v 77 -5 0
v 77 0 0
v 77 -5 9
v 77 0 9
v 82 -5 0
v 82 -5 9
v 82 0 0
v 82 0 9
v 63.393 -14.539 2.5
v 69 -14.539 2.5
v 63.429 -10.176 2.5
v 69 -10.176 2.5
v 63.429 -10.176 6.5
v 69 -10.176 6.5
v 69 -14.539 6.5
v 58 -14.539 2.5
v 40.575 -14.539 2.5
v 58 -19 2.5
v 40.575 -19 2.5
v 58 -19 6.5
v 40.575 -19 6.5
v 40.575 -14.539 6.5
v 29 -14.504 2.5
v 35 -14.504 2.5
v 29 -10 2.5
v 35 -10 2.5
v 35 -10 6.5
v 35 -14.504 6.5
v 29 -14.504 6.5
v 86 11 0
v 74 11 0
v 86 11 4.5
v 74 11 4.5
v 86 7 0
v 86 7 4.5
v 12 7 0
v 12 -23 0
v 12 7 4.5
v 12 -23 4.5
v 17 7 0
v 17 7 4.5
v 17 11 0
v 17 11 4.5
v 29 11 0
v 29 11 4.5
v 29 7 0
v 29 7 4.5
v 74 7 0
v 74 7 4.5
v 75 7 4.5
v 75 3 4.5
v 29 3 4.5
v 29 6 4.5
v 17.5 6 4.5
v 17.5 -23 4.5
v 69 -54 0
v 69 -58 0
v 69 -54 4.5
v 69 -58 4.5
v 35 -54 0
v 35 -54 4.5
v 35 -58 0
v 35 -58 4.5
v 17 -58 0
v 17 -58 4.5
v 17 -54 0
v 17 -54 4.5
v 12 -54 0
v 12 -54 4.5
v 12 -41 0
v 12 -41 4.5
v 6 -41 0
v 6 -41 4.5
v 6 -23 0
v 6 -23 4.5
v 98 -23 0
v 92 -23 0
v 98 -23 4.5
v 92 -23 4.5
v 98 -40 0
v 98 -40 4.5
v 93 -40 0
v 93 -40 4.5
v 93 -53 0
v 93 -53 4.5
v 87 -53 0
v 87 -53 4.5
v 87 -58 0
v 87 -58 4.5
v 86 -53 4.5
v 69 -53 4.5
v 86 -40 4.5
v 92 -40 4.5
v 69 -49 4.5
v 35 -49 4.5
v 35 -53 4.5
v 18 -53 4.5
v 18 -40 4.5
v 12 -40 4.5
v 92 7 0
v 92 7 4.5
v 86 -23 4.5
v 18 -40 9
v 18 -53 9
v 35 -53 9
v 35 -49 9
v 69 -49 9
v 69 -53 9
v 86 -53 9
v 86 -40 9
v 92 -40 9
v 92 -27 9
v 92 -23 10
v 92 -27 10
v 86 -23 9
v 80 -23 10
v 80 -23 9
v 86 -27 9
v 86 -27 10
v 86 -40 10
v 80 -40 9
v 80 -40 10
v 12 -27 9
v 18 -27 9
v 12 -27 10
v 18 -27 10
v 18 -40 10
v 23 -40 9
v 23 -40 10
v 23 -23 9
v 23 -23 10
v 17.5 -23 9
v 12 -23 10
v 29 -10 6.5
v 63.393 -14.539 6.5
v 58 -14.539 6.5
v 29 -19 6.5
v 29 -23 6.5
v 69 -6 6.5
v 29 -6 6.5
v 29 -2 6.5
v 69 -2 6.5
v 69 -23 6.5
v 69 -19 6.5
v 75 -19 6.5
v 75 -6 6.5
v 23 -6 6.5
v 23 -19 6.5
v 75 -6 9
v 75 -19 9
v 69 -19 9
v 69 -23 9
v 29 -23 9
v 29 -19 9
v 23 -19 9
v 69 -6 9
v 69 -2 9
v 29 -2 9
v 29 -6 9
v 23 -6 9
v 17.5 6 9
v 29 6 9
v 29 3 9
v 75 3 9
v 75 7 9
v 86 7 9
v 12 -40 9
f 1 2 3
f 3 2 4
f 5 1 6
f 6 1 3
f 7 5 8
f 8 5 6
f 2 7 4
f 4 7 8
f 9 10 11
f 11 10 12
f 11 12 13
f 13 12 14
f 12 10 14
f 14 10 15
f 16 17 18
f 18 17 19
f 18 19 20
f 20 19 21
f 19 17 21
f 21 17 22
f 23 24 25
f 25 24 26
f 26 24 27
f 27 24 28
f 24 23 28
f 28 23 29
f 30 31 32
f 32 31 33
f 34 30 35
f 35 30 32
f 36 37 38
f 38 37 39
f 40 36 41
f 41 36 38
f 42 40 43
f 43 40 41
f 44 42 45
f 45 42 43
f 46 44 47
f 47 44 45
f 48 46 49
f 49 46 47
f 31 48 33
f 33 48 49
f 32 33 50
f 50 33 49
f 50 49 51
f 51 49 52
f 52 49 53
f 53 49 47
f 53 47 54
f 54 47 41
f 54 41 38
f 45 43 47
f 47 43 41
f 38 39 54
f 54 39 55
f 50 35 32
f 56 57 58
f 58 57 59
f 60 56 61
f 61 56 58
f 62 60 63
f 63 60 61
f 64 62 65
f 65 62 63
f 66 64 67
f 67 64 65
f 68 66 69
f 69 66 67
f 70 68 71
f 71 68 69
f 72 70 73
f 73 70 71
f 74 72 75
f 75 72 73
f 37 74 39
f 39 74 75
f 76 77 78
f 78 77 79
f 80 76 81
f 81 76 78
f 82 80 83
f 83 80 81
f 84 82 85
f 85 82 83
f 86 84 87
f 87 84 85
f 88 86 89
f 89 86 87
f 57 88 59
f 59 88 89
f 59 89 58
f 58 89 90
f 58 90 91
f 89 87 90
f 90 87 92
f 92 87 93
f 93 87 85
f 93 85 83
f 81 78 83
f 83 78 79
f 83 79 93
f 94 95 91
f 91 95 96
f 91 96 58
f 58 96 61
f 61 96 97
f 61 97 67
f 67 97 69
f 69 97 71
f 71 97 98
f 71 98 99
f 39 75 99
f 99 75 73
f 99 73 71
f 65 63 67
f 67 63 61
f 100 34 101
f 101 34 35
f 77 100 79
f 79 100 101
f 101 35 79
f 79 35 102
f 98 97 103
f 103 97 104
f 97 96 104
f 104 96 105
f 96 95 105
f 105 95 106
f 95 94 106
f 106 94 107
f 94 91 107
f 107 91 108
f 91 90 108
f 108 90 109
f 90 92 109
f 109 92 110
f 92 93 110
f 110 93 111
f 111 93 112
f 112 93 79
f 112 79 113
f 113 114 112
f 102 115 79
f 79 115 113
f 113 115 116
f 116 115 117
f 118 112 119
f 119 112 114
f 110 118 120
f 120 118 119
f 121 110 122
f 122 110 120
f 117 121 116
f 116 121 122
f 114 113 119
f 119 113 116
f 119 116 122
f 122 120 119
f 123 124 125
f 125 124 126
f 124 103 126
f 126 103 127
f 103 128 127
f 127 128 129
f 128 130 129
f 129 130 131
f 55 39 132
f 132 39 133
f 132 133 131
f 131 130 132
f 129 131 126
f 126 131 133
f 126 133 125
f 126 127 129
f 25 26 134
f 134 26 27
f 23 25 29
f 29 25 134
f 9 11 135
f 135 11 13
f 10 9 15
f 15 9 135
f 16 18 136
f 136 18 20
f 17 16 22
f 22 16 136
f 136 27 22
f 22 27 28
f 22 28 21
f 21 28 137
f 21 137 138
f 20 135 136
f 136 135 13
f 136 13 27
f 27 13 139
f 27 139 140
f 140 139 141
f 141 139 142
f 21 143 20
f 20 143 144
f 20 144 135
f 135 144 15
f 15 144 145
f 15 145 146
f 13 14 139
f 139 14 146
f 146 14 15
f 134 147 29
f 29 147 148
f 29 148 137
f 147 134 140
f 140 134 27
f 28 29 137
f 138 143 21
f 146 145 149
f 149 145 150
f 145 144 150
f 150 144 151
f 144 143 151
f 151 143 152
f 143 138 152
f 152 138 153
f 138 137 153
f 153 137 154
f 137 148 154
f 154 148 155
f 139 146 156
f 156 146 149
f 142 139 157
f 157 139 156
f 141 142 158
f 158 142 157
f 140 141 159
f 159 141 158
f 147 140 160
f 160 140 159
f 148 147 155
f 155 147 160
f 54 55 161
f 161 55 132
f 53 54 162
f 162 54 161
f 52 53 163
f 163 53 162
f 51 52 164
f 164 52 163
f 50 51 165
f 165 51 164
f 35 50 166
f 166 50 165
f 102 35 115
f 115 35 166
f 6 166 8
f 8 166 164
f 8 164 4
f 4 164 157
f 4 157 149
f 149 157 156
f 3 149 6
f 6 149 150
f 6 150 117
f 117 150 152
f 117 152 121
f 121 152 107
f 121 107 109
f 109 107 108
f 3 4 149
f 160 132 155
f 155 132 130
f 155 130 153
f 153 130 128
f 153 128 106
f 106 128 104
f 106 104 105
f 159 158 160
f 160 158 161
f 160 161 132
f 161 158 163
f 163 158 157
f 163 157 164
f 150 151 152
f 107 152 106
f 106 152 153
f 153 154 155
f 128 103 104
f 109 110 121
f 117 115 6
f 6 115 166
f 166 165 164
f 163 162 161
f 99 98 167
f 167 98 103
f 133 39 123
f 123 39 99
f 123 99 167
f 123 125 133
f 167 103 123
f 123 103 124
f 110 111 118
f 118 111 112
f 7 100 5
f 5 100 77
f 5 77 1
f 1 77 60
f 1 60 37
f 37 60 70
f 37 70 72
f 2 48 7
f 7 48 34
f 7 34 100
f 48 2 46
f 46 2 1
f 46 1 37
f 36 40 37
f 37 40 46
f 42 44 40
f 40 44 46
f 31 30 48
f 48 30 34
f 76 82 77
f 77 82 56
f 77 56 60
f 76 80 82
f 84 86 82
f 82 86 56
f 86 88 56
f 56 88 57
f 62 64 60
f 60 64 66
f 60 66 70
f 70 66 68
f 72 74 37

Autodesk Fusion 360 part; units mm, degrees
sketch "finn" plane through (0, 0, 0) normal (0, 0, 1) x (1, 0, 0)
  line L0 (12, 6) -> (12, -23)
  line L1 (12, -23) -> (6, -23)
  line L2 (6, -23) -> (6, -41)
  line L3 (6, -41) -> (12, -41)
  line L4 (12, -41) -> (12, -54)
  line L5 (12, -54) -> (17, -54)
  line L6 (17, -58) -> (35, -58)
  line L7 (35, -58) -> (35, -54)
  line L8 (35, -54) -> (69, -54)
  line L9 (69, -58) -> (87, -58)
  line L10 (87, -58) -> (87, -53)
  line L11 (87, -53) -> (93, -53)
  line L12 (93, -53) -> (93, -40)
  line L13 (98, -40) -> (98, -23)
  line L14 (98, -23) -> (92, -23)
  line L15 (92, -23) -> (92, 7)
  line L16 (92, 7) -> (86, 7)
  line L17 (86, 11) -> (74, 11)
  line L18 (74, 11) -> (74, 7)
  line L19 (74, 7) -> (29, 7)
  line L20 (29, 11) -> (17, 11)
  line L21 (17, 11) -> (17, 7)
  line L22 (12, 6) -> (12, 7)
  line L23 (23, -6) -> (23, -19)
  line L24 (23, -19) -> (29, -19)
  line L25 (29, -23) -> (69, -23)
  line L26 (69, -23) -> (69, -19)
  line L27 (75, -19) -> (75, -6)
  line L28 (75, -6) -> (69, -6)
  line L29 (69, -2) -> (69, -6)
  line L30 (69, -2) -> (29, -2)
  line L31 (29, -2) -> (29, -6)
  line L32 (23, -6) -> (29, -6)
  line L33 (29, -10.3517) -> (29, -14.5037)
  line L34 (29, -14.5037) -> (35, -14.5037)
  line L35 (35, -14.5037) -> (35, -10)
  line L36 (35, -10) -> (29, -10)
  line L37 (29, -10) -> (29, -10.3517)
  line L38 (63.4285, -10.1759) -> (69, -10.1759)
  line L39 (69, -10.1759) -> (69, -14.5392)
  line L40 (69, -14.5392) -> (63.393, -14.5392)
  line L41 (63.393, -14.5392) -> (63.4285, -10.1759)
  line L42 (40.5749, -14.5392) -> (40.5749, -19)
  line L43 (40.5749, -19) -> (58, -19)
  line L44 (58, -19) -> (58, -14.5392)
  line L45 (58, -14.5392) -> (40.5749, -14.5392)
  line L46 (17, -58) -> (17, -54)
  line L47 (29, 7) -> (29, 11)
  line L48 (12, 7) -> (17, 7)
  line L49 (12, -23) -> (12, -27)
  line L50 (12, -27) -> (18, -27)
  line L51 (18, -27) -> (18, -40)
  line L52 (18, -40) -> (23, -40)
  line L53 (23, -40) -> (23, -23)
  line L54 (23, -23) -> (12, -23)
  line L55 (92, -23) -> (80, -23)
  line L56 (80, -23) -> (80, -40)
  line L57 (80, -40) -> (86, -40)
  line L58 (86, -40) -> (86, -27)
  line L59 (86, -27) -> (92, -27)
  line L60 (92, -27) -> (92, -23)
  line L61 (69, -58) -> (69, -54)
  line L62 (12, -23) -> (12, -40)
  line L63 (12, -40) -> (18, -40)
  line L64 (18, -53) -> (35, -53)
  line L65 (35, -53) -> (35, -49)
  line L66 (35, -49) -> (69, -49)
  line L67 (69, -53) -> (69, -49)
  line L68 (69, -53) -> (86, -53)
  line L69 (86, -53) -> (86, -40)
  line L70 (86, -40) -> (92, -40)
  line L71 (92, -40) -> (92, -23)
  line L72 (92, -23) -> (86, -23)
  line L73 (92, -23) -> (86, -23)
  line L74 (86, -23) -> (86, 7)
  line L75 (86, 7) -> (75, 7)
  line L76 (75, 7) -> (75, 3)
  line L77 (75, 3) -> (29, 3)
  line L78 (29, 3) -> (29, 6)
  line L79 (29, 6) -> (17.5, 6)
  line L80 (17.5, 6) -> (17.5, -23)
  line L81 (18, -53) -> (18, -40)
  line L82 (93, -40) -> (98, -40)
  line L83 (86, 11) -> (86, 7)
  line L84 (29, -19) -> (29, -23)
  line L85 (69, -19) -> (75, -19)
  line L86 (23, -27) -> (80, -27)
  line L87 (23, -27) -> (23, -40)
extrude "Extrude7" add sketch "finn" along normal blind 10 contours L49 L50 L51 L52 L53 L54 L62 L87 | L55 L56 L57 L58 L59 L60 L71 L72 L73 makes body 1 at (23, -34.3333, 3.3333) makes body 2 at (80, -28.6667, 3.3333)
extrude "Extrude8" add sketch "finn" along normal blind 9 separate body contours L50 L51 L62 L63 | L53 L54 L55 L56 L74 L75 L76 L77 L78 L79 L80 L86 | L52 L53 L56 L57 L64 L65 L66 L67 L68 L69 L81 L86 L87 | L58 L59 L70 L71 makes body 3 at (44.3333, -31.6667, 0)
extrude "Extrude9" add sketch "finn" along normal blind 6.5 contours L23 L24 L25 L26 L27 L28 L29 L30 L31 L32 L84 L85 bodies 3
combine "Combine1" operation add target body 3 tool bodies 1 2
extrude "Extrude10" add sketch "finn" along normal blind 4.5 contours L0 L17 L18 L19 L20 L21 L22 L47 L48 L54 L75 L76 L77 L78 L79 L80 L83 | L1 L2 L3 L4 L5 L6 L7 L8 L9 L10 L11 L12 L13 L14 L46 L49 L60 L61 L62 L63 L64 L65 L66 L67 L68 L69 L70 L71 L81 L82 | L15 L16 L55 L72 L73 L74 bodies 3
extrude "Extrude11" add sketch "finn" along normal blind 2.5 contours L33 L34 L35 L36 L37 | L38 L39 L40 L41 | L42 L43 L44 L45 bodies 3
sketch "Sketch6" plane through (0, 0, 9) normal (0, 0, 1) x (-1, 0, 0)
  line L0 (-23, 19) -> (-23, 6)
  line L1 (-23, 6) -> (-29, 6)
  line L2 (-29, 6) -> (-29, 2)
  line L3 (-29, 2) -> (-69, 2)
  line L4 (-69, 2) -> (-69, 6)
  line L5 (-69, 6) -> (-75, 6)
  line L6 (-75, 6) -> (-75, 19)
  line L7 (-75, 19) -> (-69, 19)
  line L8 (-69, 19) -> (-69, 23)
  line L9 (-69, 23) -> (-29, 23)
  line L10 (-29, 23) -> (-29, 19)
  line L11 (-29, 19) -> (-23, 19)
  line L12 (-23, 23) -> (-23, 40)
  line L13 (-23, 40) -> (-18, 40)
  line L14 (-18, 40) -> (-18, 53)
  line L15 (-18, 53) -> (-35, 53)
  line L16 (-35, 53) -> (-35, 49)
  line L17 (-35, 49) -> (-69, 49)
  line L18 (-69, 49) -> (-69, 53)
  line L19 (-69, 53) -> (-86, 53)
  line L20 (-86, 53) -> (-86, 40)
  line L21 (-86, 40) -> (-80, 40)
  line L22 (-80, 40) -> (-80, 23)
  line L23 (-80, 23) -> (-86, 23)
  line L24 (-86, 23) -> (-86, -7)
  line L25 (-86, -7) -> (-75, -7)
  line L26 (-75, -7) -> (-75, -3)
  line L27 (-75, -3) -> (-29, -3)
  line L28 (-29, -3) -> (-29, -6)
  line L29 (-29, -6) -> (-17.5, -6)
  line L30 (-17.5, -6) -> (-17.5, 23)
  line L31 (-17.5, 23) -> (-23, 23)
  line L32 (-77, 0) -> (-82, 0)
  line L33 (-82, 0) -> (-82, 5)
  line L34 (-82, 5) -> (-77, 5)
  line L35 (-77, 5) -> (-77, 0)
extrude "Extrude13" cut sketch "Sketch6" against normal blind 10 contours L32 L33 L34 L35 bodies 3
